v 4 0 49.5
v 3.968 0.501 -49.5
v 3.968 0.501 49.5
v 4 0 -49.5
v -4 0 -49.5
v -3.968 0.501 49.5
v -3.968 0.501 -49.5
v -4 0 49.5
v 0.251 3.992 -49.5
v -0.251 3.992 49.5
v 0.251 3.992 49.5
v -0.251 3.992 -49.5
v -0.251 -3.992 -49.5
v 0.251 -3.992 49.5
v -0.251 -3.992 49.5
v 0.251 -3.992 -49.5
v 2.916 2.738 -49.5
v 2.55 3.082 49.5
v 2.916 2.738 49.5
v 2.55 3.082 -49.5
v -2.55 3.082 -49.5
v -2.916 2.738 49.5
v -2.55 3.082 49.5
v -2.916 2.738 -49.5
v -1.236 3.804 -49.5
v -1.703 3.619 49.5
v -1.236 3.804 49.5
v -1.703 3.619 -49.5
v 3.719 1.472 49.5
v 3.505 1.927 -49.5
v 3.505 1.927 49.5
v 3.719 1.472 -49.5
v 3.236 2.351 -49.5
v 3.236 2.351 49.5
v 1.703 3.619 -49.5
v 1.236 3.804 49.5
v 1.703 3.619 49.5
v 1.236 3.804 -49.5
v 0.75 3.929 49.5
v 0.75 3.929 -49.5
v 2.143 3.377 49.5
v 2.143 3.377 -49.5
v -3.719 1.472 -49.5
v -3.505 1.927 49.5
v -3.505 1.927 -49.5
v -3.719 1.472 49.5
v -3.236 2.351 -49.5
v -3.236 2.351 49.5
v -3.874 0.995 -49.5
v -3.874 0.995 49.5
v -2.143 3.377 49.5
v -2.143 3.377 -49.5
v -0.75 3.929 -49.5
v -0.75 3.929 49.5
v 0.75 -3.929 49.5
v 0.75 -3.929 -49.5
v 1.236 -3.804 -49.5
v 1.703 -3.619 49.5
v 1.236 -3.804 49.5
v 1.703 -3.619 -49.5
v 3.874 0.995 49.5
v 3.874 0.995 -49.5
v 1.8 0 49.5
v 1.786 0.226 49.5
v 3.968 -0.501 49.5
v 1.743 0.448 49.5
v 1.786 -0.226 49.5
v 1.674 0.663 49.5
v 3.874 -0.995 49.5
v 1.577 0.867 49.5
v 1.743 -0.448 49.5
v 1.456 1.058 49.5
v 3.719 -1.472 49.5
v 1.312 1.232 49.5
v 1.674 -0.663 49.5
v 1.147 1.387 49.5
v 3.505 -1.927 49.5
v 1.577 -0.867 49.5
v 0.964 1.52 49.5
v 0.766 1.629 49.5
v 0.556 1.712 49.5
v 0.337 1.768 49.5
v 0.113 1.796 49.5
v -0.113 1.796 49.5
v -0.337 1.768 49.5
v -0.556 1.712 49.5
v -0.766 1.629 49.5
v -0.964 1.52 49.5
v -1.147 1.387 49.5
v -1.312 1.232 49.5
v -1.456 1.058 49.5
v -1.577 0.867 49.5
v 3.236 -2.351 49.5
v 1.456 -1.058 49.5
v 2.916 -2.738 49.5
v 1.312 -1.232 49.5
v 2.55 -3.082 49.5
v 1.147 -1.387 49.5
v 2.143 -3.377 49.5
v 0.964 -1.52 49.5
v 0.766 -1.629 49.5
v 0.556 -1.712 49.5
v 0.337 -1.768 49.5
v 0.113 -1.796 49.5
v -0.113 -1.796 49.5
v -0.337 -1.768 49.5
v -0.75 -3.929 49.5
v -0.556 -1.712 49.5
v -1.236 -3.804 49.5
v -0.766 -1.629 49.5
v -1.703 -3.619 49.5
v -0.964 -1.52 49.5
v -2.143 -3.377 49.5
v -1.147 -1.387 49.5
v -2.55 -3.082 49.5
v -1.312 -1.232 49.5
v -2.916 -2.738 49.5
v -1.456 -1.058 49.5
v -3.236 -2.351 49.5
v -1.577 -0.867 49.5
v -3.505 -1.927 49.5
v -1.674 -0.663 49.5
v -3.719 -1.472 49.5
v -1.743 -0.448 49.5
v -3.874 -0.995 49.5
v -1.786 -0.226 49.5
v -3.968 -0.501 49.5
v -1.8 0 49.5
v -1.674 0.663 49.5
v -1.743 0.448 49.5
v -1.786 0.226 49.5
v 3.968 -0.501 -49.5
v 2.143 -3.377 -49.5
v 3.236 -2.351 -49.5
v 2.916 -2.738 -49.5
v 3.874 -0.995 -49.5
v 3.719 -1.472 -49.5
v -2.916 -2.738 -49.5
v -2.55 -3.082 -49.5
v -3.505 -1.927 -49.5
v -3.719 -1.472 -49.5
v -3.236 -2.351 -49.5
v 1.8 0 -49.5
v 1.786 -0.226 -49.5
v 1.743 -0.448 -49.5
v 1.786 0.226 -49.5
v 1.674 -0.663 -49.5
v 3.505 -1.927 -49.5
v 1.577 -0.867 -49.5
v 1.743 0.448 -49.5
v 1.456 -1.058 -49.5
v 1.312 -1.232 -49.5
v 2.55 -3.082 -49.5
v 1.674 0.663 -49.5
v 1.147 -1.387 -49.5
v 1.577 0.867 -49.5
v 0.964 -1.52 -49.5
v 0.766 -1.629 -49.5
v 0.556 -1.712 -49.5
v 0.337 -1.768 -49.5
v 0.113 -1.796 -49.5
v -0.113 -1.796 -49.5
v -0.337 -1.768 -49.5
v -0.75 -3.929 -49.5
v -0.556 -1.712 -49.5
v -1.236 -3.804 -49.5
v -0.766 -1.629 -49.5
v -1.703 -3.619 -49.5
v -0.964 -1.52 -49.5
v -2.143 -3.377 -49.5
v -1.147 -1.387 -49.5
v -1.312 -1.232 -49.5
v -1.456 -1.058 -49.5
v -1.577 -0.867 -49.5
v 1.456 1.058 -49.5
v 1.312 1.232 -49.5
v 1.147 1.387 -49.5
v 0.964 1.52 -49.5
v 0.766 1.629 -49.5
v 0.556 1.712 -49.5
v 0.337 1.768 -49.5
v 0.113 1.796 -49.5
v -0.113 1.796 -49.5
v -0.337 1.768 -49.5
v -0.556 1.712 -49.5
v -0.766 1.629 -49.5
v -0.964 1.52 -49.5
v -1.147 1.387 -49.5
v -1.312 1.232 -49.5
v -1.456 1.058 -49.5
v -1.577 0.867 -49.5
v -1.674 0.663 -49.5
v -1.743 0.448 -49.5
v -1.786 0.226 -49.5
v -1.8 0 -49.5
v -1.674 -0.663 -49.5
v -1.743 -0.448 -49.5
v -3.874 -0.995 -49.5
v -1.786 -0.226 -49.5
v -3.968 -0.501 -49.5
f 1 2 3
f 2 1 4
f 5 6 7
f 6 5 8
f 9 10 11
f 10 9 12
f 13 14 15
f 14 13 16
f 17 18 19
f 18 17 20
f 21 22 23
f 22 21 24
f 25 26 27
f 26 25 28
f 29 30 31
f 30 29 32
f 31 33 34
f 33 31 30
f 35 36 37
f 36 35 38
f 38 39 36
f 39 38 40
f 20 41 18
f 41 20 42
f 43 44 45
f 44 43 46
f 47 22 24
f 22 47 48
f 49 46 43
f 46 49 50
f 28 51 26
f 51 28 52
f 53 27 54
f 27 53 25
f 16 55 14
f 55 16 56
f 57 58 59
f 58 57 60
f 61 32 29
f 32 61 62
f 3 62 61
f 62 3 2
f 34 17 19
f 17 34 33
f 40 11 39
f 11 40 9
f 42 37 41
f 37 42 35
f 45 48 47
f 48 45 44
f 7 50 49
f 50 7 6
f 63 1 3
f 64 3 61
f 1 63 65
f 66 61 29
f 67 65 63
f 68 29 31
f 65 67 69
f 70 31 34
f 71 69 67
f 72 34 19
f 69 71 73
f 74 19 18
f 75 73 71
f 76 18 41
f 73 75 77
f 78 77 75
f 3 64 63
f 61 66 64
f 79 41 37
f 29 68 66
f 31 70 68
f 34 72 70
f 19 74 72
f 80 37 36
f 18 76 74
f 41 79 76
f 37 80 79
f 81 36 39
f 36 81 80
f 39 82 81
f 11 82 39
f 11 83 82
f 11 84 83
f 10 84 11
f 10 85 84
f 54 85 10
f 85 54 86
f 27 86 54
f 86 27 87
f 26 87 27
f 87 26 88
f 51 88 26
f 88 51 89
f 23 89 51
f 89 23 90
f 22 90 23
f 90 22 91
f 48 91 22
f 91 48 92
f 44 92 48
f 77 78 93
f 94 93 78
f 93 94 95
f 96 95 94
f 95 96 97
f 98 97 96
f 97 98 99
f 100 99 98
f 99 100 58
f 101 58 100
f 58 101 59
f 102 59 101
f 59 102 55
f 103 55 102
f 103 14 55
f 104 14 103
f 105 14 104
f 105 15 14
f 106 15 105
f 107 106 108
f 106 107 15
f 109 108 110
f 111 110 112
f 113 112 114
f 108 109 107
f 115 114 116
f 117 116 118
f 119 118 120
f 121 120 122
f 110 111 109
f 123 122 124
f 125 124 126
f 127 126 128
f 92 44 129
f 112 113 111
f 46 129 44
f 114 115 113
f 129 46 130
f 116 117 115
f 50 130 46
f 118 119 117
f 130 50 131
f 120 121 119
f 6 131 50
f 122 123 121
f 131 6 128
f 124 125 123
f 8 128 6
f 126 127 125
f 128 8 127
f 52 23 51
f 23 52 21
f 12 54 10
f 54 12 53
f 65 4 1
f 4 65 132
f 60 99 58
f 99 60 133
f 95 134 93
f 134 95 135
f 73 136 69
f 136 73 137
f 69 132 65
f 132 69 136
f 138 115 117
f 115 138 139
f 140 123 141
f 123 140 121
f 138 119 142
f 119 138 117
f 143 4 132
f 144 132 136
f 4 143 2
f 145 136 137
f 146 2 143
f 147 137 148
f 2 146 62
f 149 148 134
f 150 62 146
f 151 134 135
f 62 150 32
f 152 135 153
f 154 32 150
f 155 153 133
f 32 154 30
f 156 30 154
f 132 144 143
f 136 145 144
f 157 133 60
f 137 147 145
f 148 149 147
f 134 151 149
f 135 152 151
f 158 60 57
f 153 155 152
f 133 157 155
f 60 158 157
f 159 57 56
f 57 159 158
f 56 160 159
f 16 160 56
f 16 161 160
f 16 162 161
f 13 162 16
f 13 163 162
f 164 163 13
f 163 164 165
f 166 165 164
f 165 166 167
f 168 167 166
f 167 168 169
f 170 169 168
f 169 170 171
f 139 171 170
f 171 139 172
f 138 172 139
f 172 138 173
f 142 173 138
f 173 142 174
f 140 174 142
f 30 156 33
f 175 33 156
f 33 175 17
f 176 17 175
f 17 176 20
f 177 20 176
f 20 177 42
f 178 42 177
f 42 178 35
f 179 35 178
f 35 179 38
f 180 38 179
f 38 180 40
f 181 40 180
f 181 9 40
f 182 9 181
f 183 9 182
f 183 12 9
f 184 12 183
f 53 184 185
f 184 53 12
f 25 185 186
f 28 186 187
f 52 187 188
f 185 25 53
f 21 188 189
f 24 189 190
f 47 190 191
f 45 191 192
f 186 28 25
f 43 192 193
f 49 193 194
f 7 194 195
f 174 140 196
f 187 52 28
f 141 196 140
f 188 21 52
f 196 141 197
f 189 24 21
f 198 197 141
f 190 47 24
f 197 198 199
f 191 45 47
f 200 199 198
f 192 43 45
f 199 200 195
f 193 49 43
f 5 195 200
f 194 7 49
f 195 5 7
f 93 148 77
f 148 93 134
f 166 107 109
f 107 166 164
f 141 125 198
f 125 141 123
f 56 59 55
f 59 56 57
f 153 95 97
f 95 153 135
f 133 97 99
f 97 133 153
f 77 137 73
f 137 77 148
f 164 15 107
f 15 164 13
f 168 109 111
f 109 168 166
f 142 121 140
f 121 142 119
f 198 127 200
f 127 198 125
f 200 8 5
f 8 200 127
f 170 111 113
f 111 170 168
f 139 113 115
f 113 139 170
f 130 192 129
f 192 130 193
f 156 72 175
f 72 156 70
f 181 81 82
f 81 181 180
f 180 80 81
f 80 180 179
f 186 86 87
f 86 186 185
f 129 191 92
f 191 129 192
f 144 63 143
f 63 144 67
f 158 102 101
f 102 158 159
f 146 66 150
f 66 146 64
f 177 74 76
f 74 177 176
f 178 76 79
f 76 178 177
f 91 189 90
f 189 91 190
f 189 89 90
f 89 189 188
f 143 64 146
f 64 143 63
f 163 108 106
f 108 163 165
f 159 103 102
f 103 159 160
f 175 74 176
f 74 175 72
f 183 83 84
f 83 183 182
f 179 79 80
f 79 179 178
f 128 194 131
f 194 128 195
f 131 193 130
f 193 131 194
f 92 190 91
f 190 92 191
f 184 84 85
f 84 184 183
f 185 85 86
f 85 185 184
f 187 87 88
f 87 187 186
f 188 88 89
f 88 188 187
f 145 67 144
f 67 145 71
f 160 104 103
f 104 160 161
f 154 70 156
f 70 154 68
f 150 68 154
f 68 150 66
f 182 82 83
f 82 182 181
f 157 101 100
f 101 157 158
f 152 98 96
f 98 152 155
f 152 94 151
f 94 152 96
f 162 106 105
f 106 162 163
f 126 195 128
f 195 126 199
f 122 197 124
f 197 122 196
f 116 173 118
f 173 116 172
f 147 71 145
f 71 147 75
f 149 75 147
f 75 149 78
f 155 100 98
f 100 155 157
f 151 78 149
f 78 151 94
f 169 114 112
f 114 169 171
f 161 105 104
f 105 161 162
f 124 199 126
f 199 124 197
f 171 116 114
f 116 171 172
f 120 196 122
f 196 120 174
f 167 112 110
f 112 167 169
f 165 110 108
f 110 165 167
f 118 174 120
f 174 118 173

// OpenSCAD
$fn = 50;


difference() {
	union() {
		translate(v = [0, 0, -49.5000000000]) {
			cylinder(h = 99, r = 4.0000000000);
		}
	}
	union() {
		translate(v = [0, 0, -100.0000000000]) {
			cylinder(h = 200, r = 1.8000000000);
		}
	}
}
